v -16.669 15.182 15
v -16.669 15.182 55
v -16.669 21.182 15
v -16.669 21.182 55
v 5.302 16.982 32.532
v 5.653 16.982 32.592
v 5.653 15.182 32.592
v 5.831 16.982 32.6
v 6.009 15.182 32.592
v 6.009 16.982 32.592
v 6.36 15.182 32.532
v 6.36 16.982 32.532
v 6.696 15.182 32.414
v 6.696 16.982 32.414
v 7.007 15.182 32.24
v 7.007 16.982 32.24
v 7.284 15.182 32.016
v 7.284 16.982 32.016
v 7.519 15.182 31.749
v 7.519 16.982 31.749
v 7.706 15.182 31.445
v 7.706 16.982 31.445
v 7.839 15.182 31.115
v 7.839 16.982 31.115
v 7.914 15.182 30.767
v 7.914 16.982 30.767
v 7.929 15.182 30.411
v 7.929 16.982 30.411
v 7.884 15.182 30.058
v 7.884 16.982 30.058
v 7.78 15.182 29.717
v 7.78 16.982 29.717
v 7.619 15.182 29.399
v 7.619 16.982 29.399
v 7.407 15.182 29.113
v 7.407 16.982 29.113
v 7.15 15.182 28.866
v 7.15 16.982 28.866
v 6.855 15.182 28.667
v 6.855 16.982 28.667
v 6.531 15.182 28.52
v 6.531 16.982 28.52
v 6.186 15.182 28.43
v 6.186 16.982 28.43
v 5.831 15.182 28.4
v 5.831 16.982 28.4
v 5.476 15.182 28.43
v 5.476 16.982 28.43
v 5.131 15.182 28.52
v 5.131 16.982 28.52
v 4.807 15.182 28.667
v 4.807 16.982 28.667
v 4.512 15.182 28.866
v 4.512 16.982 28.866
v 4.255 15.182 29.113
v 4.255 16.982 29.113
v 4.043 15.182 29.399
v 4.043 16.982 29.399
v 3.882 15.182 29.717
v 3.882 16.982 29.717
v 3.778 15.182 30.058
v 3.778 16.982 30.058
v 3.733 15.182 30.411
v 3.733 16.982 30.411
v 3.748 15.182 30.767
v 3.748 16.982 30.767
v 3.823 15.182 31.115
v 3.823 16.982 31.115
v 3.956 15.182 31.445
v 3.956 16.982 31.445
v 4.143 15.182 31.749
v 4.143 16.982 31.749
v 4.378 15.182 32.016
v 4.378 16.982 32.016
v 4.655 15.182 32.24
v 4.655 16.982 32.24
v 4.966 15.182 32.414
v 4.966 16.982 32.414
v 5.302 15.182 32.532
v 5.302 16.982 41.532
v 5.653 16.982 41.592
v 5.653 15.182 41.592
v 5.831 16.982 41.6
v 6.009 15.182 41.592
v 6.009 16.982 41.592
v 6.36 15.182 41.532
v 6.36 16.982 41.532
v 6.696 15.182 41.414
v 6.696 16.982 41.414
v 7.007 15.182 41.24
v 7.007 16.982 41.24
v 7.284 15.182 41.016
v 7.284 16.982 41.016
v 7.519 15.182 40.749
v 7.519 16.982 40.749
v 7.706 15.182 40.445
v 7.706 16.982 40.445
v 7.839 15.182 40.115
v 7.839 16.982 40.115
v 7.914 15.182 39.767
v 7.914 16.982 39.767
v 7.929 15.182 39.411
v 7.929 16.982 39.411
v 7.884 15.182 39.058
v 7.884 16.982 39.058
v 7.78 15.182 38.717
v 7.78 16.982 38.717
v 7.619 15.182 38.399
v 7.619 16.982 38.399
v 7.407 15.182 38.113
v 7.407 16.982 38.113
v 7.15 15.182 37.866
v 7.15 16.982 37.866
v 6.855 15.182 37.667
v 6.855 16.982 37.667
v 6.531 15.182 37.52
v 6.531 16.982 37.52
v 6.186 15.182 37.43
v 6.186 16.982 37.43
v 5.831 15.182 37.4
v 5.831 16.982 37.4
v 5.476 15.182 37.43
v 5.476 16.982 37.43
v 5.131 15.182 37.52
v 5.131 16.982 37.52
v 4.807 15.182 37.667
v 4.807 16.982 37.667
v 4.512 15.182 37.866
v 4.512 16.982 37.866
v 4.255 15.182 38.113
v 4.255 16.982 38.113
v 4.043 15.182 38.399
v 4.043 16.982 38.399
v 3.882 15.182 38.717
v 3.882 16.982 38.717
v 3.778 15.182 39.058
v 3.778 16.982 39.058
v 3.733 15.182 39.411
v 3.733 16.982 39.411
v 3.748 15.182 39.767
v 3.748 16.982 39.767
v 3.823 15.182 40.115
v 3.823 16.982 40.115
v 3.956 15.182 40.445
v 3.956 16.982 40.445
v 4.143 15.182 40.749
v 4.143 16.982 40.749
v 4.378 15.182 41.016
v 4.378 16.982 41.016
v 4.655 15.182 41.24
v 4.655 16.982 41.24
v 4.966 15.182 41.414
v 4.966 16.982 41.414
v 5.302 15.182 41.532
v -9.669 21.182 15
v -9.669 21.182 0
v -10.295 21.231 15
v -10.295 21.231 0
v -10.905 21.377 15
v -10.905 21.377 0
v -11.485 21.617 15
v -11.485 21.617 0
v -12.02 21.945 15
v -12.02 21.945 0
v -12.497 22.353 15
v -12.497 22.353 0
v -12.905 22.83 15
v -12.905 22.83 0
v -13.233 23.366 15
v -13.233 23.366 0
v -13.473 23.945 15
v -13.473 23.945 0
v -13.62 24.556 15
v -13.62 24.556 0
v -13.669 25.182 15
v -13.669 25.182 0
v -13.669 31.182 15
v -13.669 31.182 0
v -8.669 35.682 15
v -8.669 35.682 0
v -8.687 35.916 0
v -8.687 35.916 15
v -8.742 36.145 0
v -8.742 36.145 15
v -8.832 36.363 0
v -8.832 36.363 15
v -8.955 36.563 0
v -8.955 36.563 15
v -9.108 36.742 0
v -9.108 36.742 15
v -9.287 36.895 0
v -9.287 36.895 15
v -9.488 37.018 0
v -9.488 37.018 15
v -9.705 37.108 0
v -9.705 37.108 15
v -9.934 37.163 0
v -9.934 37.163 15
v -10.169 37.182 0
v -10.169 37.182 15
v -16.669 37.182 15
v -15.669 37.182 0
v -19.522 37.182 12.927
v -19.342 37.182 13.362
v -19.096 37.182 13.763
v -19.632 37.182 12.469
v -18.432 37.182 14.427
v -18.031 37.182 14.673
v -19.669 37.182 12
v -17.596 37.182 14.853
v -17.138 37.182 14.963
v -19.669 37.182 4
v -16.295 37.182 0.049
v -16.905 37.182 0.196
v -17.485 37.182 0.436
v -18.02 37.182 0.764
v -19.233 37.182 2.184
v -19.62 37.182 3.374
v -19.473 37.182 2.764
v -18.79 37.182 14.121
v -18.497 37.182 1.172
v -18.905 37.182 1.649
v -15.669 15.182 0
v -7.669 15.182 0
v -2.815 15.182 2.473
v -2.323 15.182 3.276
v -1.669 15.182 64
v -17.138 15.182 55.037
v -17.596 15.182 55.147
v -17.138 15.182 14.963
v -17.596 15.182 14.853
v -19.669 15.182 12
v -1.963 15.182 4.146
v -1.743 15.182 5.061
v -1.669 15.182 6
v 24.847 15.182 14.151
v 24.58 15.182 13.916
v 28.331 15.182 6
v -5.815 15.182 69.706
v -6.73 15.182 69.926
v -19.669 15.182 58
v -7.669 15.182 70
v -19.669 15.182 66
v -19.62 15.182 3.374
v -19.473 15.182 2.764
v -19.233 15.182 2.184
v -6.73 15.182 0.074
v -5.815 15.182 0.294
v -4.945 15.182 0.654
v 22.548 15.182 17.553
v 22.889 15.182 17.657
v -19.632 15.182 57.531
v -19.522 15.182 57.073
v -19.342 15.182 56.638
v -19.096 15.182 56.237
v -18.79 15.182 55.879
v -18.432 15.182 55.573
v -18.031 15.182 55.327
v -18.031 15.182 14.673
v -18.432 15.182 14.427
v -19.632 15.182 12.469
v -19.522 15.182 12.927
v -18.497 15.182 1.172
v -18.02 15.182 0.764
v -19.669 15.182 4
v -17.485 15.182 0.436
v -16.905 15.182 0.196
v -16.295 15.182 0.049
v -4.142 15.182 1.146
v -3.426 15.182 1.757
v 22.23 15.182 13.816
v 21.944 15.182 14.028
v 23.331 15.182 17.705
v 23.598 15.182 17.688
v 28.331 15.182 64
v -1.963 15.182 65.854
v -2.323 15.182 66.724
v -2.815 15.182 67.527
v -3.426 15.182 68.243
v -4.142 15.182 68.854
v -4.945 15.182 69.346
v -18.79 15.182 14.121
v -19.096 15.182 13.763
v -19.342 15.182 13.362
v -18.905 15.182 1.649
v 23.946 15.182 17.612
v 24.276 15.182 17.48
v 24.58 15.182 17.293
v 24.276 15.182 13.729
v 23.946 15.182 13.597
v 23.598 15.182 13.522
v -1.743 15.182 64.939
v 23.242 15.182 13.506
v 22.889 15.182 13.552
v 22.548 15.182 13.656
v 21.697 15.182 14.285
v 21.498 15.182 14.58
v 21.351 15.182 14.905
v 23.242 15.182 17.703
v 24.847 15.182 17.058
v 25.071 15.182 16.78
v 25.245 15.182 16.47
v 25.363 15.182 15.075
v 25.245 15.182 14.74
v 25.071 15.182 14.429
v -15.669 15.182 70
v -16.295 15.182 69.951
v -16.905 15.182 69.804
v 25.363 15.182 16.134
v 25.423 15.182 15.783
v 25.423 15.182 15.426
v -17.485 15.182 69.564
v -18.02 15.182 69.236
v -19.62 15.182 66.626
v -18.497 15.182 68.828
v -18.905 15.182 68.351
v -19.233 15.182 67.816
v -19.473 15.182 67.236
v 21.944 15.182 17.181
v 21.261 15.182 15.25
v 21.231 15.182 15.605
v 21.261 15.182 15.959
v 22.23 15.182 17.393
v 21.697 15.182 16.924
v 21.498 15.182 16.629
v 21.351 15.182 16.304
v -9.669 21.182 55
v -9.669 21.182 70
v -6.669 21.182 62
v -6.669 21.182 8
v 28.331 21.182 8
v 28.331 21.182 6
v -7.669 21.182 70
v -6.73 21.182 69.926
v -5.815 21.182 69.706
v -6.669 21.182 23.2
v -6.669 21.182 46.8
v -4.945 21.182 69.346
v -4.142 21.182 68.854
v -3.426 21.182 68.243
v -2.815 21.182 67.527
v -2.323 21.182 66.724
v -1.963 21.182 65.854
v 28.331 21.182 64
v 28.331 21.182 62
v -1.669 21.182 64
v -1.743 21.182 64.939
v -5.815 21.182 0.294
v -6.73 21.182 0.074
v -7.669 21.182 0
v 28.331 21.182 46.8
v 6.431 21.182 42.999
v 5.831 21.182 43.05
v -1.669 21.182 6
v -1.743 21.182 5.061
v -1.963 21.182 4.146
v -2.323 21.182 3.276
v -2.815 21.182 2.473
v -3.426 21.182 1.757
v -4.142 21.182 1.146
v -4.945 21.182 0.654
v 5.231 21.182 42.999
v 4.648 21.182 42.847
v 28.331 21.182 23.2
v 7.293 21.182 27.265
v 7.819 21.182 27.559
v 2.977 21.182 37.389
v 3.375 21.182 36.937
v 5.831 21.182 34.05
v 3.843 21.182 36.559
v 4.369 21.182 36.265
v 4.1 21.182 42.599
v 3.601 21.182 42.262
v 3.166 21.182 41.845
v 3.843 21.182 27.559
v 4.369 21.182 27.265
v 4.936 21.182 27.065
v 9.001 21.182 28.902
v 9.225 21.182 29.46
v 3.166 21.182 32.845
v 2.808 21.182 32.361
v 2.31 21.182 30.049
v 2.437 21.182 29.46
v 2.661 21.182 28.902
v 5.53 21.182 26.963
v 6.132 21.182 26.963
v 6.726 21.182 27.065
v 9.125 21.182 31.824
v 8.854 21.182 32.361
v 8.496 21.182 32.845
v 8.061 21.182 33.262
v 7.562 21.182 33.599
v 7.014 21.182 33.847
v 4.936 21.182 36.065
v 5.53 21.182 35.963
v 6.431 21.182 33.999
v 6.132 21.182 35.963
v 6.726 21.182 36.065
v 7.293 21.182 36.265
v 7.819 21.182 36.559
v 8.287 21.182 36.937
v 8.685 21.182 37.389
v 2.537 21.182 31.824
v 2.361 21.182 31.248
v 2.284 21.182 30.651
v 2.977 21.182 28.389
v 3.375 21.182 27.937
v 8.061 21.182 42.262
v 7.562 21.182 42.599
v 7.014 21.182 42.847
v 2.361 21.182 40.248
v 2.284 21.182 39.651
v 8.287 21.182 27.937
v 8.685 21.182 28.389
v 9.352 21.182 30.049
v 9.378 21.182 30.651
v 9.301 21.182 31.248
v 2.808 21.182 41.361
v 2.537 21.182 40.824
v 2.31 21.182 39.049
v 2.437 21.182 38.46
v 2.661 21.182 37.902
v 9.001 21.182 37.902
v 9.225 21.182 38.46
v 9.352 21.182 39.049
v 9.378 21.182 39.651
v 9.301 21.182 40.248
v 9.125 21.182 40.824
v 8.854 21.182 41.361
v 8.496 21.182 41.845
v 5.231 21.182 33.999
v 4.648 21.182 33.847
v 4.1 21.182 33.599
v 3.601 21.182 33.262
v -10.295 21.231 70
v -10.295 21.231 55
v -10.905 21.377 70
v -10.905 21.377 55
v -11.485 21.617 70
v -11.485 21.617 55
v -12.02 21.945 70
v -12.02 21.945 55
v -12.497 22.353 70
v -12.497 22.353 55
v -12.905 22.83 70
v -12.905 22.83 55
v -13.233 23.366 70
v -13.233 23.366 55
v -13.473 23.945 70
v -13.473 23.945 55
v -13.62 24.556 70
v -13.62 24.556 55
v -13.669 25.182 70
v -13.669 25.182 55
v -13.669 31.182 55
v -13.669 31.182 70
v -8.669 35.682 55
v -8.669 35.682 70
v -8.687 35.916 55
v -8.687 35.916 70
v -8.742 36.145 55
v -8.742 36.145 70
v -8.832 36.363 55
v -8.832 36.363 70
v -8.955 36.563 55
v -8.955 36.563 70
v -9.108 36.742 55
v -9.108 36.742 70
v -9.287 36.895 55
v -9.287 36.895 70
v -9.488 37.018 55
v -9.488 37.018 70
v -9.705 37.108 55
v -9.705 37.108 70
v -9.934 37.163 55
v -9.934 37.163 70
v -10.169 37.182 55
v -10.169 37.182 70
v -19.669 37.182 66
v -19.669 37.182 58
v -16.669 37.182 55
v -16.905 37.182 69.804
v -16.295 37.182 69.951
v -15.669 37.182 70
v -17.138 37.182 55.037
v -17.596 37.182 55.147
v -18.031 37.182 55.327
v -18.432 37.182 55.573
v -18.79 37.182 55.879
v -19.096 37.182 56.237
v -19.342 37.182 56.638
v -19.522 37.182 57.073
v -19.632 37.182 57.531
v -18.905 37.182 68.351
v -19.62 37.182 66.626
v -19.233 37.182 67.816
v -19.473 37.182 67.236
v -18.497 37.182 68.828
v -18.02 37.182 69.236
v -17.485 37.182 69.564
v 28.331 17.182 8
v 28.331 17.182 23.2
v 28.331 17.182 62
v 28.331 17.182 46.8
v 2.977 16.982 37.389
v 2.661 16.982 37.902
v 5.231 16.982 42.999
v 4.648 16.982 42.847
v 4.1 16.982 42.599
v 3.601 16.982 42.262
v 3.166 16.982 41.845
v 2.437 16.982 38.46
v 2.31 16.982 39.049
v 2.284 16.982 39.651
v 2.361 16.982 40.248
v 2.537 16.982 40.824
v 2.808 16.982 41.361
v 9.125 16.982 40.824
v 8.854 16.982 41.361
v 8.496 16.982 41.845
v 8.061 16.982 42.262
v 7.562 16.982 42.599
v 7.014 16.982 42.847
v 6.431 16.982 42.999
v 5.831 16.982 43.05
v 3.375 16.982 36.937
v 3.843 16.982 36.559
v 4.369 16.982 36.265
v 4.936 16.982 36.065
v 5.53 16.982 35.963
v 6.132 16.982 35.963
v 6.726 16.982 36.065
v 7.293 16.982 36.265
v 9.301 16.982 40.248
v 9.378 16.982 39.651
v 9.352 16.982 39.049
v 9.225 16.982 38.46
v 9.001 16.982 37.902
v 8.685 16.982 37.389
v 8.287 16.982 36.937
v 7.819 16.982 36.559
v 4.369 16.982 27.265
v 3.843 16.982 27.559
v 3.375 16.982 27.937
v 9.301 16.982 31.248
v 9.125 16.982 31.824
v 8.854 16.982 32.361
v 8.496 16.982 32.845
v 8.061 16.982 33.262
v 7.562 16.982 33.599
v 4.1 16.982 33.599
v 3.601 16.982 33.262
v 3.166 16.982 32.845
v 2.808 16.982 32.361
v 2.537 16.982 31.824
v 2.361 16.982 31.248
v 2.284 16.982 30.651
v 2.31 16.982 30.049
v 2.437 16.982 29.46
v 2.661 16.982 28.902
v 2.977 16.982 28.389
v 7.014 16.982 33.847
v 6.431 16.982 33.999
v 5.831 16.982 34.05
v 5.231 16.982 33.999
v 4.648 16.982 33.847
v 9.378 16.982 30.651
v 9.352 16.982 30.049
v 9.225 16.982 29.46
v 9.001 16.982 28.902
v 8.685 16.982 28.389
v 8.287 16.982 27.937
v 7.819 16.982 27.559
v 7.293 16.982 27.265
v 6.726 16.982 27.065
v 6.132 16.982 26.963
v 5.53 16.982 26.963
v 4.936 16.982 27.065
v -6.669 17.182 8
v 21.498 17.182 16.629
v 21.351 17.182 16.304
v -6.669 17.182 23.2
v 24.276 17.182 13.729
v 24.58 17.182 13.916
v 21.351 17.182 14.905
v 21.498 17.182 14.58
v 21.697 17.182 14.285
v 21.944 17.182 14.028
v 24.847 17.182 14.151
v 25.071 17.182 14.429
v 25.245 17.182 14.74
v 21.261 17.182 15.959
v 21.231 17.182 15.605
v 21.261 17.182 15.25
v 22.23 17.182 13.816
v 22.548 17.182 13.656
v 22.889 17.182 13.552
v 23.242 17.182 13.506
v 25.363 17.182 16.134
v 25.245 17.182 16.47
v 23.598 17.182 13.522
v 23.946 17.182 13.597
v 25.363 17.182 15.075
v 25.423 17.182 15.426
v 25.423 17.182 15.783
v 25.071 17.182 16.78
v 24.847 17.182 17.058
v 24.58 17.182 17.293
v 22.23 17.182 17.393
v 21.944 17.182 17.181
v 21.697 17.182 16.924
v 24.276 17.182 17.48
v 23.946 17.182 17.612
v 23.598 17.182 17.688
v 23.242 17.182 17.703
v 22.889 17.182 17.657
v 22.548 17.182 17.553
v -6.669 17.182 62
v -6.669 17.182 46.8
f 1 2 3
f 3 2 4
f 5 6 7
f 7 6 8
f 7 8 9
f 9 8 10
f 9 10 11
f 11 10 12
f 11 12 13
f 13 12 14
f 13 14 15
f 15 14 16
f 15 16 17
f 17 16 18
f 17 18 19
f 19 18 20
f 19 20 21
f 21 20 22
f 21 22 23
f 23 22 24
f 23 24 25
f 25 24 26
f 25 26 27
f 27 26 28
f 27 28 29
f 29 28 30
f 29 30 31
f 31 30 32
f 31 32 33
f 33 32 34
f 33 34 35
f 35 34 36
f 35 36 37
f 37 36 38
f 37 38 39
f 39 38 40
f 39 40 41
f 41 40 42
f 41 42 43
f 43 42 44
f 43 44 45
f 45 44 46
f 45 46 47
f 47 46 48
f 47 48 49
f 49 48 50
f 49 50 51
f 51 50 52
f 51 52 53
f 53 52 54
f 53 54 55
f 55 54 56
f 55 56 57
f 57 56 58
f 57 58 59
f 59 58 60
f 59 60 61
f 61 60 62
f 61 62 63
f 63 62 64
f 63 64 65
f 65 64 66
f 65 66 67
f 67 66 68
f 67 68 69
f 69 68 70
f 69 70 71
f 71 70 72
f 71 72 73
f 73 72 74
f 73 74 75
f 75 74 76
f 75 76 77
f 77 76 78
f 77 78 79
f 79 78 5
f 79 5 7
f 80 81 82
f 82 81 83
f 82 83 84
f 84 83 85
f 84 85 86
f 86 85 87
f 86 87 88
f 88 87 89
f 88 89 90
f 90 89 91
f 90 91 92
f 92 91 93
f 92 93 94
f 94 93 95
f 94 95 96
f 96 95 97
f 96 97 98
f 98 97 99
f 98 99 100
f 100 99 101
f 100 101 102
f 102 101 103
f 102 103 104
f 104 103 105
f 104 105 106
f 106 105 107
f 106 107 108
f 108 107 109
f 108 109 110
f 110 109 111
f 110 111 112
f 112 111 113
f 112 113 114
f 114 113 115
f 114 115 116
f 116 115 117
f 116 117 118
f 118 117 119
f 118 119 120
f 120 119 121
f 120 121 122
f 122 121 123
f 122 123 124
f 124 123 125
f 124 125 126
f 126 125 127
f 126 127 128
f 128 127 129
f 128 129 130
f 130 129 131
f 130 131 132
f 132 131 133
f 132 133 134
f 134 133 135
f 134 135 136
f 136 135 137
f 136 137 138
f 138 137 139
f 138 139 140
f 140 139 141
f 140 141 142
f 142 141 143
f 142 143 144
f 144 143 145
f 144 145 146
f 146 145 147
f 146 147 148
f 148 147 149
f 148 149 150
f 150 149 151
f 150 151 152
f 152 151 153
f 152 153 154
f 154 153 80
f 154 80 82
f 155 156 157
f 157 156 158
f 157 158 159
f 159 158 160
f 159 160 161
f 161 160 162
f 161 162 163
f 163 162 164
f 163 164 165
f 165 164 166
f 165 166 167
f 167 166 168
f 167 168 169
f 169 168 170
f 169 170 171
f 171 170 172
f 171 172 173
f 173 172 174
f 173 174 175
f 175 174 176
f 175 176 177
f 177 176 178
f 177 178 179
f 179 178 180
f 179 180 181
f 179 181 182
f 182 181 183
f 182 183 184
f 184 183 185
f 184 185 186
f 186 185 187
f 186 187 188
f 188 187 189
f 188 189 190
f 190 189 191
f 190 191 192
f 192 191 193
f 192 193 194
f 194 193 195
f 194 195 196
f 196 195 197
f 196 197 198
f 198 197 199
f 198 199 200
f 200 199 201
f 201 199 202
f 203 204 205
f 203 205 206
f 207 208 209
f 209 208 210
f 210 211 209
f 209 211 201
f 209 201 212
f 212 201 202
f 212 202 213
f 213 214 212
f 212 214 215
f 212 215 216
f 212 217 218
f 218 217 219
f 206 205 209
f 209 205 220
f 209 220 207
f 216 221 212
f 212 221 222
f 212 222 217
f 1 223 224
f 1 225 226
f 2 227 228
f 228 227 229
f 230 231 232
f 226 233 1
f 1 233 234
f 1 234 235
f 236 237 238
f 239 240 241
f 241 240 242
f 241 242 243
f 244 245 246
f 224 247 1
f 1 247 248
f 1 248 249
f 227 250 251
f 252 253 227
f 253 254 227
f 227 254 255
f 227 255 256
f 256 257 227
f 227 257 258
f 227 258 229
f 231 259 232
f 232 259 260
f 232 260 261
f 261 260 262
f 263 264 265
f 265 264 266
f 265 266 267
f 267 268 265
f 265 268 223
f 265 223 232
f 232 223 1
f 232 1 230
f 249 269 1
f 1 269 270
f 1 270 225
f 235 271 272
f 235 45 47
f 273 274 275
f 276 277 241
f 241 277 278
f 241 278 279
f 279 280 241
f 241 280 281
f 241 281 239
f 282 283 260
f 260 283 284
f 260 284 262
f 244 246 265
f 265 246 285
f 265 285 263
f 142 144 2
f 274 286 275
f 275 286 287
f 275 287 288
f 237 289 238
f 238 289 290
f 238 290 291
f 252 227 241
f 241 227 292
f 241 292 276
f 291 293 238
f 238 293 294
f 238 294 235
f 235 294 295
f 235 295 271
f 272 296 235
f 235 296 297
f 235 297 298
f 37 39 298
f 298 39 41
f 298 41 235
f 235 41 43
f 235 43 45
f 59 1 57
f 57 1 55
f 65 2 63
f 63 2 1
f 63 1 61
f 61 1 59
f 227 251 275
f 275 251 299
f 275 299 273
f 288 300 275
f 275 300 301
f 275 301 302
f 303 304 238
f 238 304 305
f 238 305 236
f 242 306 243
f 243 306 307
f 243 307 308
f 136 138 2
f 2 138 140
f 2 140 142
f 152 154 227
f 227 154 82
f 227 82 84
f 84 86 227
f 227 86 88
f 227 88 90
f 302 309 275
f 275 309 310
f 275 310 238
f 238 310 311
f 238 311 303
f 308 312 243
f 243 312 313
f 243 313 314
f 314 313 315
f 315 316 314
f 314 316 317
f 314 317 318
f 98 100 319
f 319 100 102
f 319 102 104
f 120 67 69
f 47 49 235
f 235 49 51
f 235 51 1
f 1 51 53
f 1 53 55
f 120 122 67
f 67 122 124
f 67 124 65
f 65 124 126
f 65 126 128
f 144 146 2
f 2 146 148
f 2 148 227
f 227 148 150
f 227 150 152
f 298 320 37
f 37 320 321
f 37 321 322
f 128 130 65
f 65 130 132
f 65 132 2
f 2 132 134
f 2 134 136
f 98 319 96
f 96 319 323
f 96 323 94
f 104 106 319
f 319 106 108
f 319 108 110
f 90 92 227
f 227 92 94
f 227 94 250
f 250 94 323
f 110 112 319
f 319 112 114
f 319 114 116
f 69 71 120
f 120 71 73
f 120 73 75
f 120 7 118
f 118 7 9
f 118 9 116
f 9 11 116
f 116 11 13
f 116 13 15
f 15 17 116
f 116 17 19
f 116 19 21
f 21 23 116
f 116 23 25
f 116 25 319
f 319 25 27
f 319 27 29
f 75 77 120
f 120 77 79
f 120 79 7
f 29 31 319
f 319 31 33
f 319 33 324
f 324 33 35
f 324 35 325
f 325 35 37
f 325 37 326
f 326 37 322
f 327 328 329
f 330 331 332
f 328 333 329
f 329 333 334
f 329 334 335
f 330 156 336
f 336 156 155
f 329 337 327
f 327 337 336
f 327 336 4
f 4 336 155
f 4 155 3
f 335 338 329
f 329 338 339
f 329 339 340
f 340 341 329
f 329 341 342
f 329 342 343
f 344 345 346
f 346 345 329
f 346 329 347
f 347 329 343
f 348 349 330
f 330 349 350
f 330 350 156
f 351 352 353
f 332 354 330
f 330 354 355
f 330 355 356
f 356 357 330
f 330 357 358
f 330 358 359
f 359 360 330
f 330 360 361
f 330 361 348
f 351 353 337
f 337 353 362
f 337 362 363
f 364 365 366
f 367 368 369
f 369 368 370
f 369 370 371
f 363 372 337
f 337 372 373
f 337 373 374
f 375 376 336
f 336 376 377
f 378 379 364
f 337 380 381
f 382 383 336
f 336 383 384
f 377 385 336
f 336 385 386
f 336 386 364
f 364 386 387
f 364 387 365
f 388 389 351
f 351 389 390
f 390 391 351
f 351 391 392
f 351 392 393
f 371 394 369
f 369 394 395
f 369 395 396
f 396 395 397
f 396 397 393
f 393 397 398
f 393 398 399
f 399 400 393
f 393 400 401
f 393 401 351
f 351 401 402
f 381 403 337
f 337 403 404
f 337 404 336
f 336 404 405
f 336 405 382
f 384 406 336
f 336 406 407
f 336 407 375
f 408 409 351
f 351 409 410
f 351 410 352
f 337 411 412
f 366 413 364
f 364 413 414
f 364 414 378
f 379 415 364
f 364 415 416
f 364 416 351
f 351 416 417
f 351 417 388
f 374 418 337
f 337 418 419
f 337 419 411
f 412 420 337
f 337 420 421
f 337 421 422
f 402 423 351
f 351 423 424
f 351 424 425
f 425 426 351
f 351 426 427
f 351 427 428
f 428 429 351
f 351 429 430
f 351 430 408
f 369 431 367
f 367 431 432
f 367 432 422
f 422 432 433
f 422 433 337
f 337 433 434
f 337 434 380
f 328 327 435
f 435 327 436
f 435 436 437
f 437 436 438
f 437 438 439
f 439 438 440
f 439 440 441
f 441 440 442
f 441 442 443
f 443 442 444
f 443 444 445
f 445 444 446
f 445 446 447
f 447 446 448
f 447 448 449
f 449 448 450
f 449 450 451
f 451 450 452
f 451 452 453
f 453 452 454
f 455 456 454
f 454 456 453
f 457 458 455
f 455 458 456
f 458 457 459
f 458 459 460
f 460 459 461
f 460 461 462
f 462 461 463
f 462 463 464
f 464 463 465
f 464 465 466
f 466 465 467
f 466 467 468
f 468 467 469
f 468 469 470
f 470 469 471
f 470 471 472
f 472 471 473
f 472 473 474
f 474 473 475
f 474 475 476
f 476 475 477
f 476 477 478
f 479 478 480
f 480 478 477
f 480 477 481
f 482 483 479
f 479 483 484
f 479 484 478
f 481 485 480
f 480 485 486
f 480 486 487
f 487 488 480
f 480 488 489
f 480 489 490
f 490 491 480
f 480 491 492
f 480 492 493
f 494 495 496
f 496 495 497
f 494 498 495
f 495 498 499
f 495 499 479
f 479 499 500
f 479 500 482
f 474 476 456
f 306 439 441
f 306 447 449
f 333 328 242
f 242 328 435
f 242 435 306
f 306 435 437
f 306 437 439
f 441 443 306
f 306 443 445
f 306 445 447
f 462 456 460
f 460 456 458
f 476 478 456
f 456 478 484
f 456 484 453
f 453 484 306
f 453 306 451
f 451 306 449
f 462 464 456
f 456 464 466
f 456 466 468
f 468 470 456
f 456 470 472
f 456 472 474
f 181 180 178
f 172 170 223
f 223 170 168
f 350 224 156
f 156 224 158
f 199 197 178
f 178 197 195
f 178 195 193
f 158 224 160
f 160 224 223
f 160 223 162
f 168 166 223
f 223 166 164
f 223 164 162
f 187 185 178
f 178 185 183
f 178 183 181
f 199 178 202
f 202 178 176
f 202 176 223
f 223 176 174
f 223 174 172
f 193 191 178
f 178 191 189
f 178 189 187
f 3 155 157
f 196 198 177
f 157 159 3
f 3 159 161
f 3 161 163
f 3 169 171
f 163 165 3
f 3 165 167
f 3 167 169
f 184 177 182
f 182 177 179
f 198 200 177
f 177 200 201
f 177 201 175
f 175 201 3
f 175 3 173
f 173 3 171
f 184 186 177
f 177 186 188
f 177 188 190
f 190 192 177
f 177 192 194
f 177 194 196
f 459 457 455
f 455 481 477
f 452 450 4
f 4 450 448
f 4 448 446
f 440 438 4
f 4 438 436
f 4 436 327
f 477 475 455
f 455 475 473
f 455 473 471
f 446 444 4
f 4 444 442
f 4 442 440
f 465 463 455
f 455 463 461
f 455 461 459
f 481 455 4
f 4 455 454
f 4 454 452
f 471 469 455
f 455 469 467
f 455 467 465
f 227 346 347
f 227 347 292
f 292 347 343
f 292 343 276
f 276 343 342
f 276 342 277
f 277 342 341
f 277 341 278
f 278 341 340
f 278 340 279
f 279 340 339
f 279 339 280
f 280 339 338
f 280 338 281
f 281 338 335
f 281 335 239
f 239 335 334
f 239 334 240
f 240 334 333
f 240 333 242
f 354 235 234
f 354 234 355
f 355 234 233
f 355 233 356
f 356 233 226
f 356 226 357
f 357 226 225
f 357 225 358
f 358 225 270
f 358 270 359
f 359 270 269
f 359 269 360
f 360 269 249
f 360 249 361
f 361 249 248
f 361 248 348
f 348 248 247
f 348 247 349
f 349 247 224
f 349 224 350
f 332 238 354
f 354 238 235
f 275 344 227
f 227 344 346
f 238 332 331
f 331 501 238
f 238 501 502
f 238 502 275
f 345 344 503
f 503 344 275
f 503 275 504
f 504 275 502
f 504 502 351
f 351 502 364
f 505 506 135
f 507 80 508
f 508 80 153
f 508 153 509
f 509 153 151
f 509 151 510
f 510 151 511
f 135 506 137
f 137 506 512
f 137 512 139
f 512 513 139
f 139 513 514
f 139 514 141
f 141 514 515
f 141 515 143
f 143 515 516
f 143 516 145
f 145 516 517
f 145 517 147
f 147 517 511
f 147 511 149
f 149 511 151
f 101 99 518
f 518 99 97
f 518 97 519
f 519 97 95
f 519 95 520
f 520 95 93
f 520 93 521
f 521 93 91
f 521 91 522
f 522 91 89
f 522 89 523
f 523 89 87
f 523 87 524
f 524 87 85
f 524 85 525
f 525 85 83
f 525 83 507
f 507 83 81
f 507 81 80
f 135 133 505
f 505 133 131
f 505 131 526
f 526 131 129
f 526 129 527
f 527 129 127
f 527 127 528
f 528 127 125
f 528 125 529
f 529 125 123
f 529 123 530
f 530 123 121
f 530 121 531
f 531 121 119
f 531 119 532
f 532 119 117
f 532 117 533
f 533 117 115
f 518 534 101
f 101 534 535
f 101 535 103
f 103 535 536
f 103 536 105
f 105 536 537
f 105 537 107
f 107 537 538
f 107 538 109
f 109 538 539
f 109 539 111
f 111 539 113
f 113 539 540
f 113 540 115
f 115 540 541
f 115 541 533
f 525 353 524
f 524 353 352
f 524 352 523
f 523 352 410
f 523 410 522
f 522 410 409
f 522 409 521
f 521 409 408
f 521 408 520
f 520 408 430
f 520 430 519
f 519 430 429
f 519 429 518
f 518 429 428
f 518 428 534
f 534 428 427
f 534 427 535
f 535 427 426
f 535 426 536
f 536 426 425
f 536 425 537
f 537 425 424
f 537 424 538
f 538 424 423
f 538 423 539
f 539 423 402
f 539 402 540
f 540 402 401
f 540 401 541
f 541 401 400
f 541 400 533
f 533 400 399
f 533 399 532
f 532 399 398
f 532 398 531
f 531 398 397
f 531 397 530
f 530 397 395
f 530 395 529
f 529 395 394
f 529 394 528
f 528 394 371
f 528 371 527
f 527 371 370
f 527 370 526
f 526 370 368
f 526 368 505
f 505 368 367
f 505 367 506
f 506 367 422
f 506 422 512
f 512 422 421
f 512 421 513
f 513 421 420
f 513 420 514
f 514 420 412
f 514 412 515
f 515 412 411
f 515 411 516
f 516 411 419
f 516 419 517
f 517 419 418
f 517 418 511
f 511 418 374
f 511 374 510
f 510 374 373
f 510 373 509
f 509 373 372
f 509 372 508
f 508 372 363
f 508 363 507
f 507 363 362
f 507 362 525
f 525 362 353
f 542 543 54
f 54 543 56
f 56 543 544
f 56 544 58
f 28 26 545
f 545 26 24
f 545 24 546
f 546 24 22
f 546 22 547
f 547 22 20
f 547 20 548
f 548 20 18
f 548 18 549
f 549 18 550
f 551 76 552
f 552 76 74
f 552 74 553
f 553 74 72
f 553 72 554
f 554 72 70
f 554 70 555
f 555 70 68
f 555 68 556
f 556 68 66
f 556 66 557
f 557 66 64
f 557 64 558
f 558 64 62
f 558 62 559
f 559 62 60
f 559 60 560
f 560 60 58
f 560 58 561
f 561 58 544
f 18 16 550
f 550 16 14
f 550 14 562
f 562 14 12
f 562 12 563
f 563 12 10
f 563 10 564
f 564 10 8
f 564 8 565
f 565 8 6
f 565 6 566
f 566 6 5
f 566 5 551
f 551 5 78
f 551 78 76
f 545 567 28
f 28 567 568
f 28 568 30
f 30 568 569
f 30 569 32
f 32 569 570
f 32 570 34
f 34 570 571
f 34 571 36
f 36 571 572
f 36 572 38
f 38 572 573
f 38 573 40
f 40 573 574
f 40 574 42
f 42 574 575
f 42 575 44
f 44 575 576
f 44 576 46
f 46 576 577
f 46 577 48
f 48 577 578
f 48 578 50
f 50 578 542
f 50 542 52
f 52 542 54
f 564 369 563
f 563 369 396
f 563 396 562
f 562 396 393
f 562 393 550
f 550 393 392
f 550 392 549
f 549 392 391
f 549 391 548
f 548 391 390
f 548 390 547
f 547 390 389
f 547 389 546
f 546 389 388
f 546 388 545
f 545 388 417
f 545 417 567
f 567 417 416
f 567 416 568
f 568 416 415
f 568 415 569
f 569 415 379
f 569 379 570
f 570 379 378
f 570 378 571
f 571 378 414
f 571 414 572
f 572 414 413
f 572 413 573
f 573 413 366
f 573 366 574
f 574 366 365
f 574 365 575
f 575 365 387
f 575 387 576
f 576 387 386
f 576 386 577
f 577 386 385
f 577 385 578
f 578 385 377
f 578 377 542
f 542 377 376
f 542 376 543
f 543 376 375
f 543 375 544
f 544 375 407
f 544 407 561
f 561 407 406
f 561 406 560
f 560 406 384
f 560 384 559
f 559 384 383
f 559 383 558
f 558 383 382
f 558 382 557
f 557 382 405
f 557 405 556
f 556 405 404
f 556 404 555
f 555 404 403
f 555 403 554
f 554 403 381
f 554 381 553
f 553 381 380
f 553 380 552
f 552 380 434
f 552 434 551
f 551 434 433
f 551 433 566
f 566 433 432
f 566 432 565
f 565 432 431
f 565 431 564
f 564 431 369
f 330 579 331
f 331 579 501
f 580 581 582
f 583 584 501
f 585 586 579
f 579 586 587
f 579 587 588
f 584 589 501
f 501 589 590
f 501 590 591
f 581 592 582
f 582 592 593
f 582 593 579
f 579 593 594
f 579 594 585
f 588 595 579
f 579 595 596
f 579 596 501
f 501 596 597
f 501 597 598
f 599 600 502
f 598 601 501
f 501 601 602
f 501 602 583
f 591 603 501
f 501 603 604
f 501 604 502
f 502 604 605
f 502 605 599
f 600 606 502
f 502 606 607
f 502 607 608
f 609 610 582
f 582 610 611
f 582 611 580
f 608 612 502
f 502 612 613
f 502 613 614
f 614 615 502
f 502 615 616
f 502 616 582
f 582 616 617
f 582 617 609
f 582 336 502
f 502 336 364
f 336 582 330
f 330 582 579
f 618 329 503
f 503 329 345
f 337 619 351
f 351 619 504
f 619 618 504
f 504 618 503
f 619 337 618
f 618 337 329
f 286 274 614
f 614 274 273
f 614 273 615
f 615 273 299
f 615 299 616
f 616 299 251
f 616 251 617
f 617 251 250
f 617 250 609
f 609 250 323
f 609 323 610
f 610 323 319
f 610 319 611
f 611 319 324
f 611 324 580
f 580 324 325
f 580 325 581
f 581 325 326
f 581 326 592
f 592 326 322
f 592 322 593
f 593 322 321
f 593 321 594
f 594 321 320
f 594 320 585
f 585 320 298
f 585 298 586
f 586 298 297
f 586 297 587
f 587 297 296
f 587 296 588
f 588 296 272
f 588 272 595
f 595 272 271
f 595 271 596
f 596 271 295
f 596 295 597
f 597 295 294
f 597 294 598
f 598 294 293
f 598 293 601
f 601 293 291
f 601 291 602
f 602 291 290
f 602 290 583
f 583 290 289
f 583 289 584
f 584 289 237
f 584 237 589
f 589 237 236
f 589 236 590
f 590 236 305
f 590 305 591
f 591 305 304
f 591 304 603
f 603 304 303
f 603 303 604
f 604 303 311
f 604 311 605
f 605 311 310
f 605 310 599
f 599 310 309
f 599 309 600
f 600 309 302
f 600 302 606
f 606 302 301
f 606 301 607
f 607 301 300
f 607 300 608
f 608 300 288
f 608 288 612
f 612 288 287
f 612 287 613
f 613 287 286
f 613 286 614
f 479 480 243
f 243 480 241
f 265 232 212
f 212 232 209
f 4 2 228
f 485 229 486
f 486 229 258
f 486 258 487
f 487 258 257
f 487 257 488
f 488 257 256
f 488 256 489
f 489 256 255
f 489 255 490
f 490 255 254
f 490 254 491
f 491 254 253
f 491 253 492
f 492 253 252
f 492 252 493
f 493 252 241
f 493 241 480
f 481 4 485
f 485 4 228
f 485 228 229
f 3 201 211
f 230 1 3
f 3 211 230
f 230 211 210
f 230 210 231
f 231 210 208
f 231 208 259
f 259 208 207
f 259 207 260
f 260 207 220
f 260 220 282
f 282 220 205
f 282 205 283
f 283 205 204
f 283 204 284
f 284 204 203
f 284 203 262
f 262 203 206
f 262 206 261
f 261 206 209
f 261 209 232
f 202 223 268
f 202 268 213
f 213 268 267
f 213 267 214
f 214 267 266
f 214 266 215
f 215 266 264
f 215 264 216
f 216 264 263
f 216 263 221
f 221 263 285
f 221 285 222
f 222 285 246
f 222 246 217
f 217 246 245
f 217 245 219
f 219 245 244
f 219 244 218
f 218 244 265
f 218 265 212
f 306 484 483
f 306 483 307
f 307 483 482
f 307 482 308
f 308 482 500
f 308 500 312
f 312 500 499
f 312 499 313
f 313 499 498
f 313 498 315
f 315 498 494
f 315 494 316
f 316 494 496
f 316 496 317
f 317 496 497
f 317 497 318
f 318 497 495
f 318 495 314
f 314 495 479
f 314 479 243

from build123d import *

# Parameters (mm, degrees)
BOSS_EXTRU_1_DEPTH      = 70
ESQUISSE3_W             = 40
ESQUISSE3_H             = 16
ENL_V_MAT_EXTRU_1_DEPTH = 15
CONG_2_R                = 6
ESQUISSE4_W             = 58
ESQUISSE4_H             = 6
BOSS_EXTRU_2_DEPTH      = 30
ENL_V_MAT_EXTRU_2_REACH = 80.655
ESQUISSE5_R             = 2.1
ESQUISSE6_R             = 3.55
ENL_V_MAT_EXTRU_3_DEPTH = 4.2
ESQUISSE8_W             = 15.2
ESQUISSE8_H             = 4
ENL_V_MAT_EXTRU_5_DEPTH = 35
ENL_V_MAT_EXTRU_6_REACH = 80.119
ESQUISSE9_R             = 2.1
ESQUISSE10_W            = 3
ESQUISSE10_H            = 15
BOSS_EXTRU_3_DEPTH      = 22
CONG_3_R                = 3
CONG_4_R                = 4


with BuildPart() as part:
    # Esquisse1 → Boss.-Extru.1 (new body)
    with BuildSketch(Plane.XY):
        with BuildLine():
            Line((-16.668973791, 33.181519274), (-16.668973791, 15.181519274))
            Line((-16.668973791, 15.181519274), (-1.668973791, 15.181519274))
            Line((-1.668973791, 15.181519274), (-1.668973791, 21.181519274))
            Line((-1.668973791, 21.181519274), (-9.668973791, 21.181519274))
            ThreePointArc((-9.668973791, 21.181519274), (-12.497400916, 22.35309215), (-13.668973791, 25.181519274))
            Line((-13.668973791, 25.181519274), (-13.668973791, 31.181519274))
            Line((-13.668973791, 31.181519274), (-8.668973791, 35.681519274))
            ThreePointArc((-8.668973791, 35.681519274), (-9.108313619, 36.742179446), (-10.168973791, 37.181519274))
            Line((-10.168973791, 37.181519274), (-13.668973791, 37.181519274))
            Line((-13.668973791, 37.181519274), (-14.668973791, 37.181519274))
            Line((-14.668973791, 37.181519274), (-16.668973791, 37.181519274))
            Line((-16.668973791, 37.181519274), (-16.668973791, 34.181519274))
            Line((-16.668973791, 34.181519274), (-16.668973791, 33.181519274))
        make_face()
    extrude(amount=BOSS_EXTRU_1_DEPTH)

    # Esquisse3 → Enlèv. mat.-Extru.1 (cut)
    with BuildSketch(Plane.ZY.offset(16.668973791)):
        with Locations((35, 29.181519274)):
            Rectangle(ESQUISSE3_W, ESQUISSE3_H)
    extrude(amount=-ENL_V_MAT_EXTRU_1_DEPTH, mode=Mode.SUBTRACT)

    # Congé2
    cong_2_edges = [part.edges().sort_by_distance(p)[0] for p in [
        (-1.668973791, 18.181519274, 0),
        (-1.668973791, 18.181519274, 70),
    ]]
    fillet(cong_2_edges, radius=CONG_2_R)

    # Esquisse4 → Boss.-Extru.2 (add)
    with BuildSketch(Plane(origin=(-1.668973791, 0, 0), x_dir=(0, 0, -1), z_dir=(1, 0, 0))):
        with Locations((-35, 18.181519274)):
            Rectangle(ESQUISSE4_W, ESQUISSE4_H)
    extrude(amount=BOSS_EXTRU_2_DEPTH)

    # Esquisse5 → Enlèv. mat.-Extru.2 (cut, up to next)
    with BuildSketch(Plane.XZ.offset(-15.181519274), mode=Mode.PRIVATE) as enl_v_mat_extru_2_sk1:
        with Locations(Location((5.831026209, 39.5, 0), (0, 0, 270))):
            Circle(ESQUISSE5_R)
    enl_v_mat_extru_2_tool1 = extrude(enl_v_mat_extru_2_sk1.sketch, amount=-ENL_V_MAT_EXTRU_2_REACH, mode=Mode.PRIVATE) & part.part
    # Esquisse5 → Enlèv. mat.-Extru.2 (cut, up to next)
    with BuildSketch(Plane.XZ.offset(-15.181519274), mode=Mode.PRIVATE) as enl_v_mat_extru_2_sk2:
        with Locations(Location((5.831026209, 30.5, 0), (0, 0, 270))):
            Circle(ESQUISSE5_R)
    enl_v_mat_extru_2_tool2 = extrude(enl_v_mat_extru_2_sk2.sketch, amount=-ENL_V_MAT_EXTRU_2_REACH, mode=Mode.PRIVATE) & part.part
    add(enl_v_mat_extru_2_tool1.solids().sort_by_distance((5.831026, 15.181519, 39.5))[0], mode=Mode.SUBTRACT)
    add(enl_v_mat_extru_2_tool2.solids().sort_by_distance((5.831026, 15.181519, 30.5))[0], mode=Mode.SUBTRACT)

    # Esquisse6 → Enlèv. mat.-Extru.3 (cut)
    with BuildSketch(Plane(origin=(0, 21.181519274, 0), x_dir=(1, 0, 0), z_dir=(0, 1, 0))):
        with Locations(Location((5.831026209, -30.5, 0), (0, 0, 270))):
            Circle(ESQUISSE6_R)
        with Locations(Location((5.831026209, -39.5, 0), (0, 0, 270))):
            Circle(ESQUISSE6_R)
    extrude(amount=-ENL_V_MAT_EXTRU_3_DEPTH, mode=Mode.SUBTRACT)

    # Esquisse8 → Enlèv. mat.-Extru.5 (cut)
    with BuildSketch(Plane(origin=(28.331026209, 0, 0), x_dir=(0, 0, -1), z_dir=(1, 0, 0))):
        with Locations((-54.4, 19.181519274)):
            Rectangle(ESQUISSE8_W, ESQUISSE8_H)
        with Locations((-15.6, 19.181519274)):
            Rectangle(ESQUISSE8_W, ESQUISSE8_H)
    extrude(amount=-ENL_V_MAT_EXTRU_5_DEPTH, mode=Mode.SUBTRACT)

    # Esquisse9 → Enlèv. mat.-Extru.6 (cut, up to next)
    with BuildSketch(Plane(origin=(0, 17.181519274, 0), x_dir=(1, 0, 0), z_dir=(0, 1, 0)), mode=Mode.PRIVATE) as enl_v_mat_extru_6_sk1:
        with Locations(Location((23.331026209, -15.604527367, 0), (0, 0, 180))):
            Circle(ESQUISSE9_R)
    enl_v_mat_extru_6_tool1 = extrude(enl_v_mat_extru_6_sk1.sketch, amount=-ENL_V_MAT_EXTRU_6_REACH, mode=Mode.PRIVATE) & part.part
    add(enl_v_mat_extru_6_tool1.solids().sort_by_distance((23.331026, 17.181519, 15.604527))[0], mode=Mode.SUBTRACT)

    # Esquisse10 → Boss.-Extru.3 (add)
    with BuildSketch(Plane.XZ.offset(-15.181519274)):
        with Locations((-18.168973791, 62.5)):
            Rectangle(ESQUISSE10_W, ESQUISSE10_H)
        with Locations((-18.168973791, 7.5)):
            Rectangle(ESQUISSE10_W, ESQUISSE10_H)
    extrude(amount=-BOSS_EXTRU_3_DEPTH)

    # Congé3
    cong_3_edges = [part.edges().sort_by_distance(p)[0] for p in [
        (-19.668973791, 26.181519274, 55),
        (-19.668973791, 26.181519274, 15),
    ]]
    fillet(cong_3_edges, radius=CONG_3_R - 0.0001)  # a hair under: the kernel refuses the full size

    # Congé4
    cong_4_edges = [part.edges().sort_by_distance(p)[0] for p in [
        (-19.668973791, 26.181519274, 70),
        (-19.668973791, 26.181519274, 0),
    ]]
    fillet(cong_4_edges, radius=CONG_4_R)


solid = part.part
